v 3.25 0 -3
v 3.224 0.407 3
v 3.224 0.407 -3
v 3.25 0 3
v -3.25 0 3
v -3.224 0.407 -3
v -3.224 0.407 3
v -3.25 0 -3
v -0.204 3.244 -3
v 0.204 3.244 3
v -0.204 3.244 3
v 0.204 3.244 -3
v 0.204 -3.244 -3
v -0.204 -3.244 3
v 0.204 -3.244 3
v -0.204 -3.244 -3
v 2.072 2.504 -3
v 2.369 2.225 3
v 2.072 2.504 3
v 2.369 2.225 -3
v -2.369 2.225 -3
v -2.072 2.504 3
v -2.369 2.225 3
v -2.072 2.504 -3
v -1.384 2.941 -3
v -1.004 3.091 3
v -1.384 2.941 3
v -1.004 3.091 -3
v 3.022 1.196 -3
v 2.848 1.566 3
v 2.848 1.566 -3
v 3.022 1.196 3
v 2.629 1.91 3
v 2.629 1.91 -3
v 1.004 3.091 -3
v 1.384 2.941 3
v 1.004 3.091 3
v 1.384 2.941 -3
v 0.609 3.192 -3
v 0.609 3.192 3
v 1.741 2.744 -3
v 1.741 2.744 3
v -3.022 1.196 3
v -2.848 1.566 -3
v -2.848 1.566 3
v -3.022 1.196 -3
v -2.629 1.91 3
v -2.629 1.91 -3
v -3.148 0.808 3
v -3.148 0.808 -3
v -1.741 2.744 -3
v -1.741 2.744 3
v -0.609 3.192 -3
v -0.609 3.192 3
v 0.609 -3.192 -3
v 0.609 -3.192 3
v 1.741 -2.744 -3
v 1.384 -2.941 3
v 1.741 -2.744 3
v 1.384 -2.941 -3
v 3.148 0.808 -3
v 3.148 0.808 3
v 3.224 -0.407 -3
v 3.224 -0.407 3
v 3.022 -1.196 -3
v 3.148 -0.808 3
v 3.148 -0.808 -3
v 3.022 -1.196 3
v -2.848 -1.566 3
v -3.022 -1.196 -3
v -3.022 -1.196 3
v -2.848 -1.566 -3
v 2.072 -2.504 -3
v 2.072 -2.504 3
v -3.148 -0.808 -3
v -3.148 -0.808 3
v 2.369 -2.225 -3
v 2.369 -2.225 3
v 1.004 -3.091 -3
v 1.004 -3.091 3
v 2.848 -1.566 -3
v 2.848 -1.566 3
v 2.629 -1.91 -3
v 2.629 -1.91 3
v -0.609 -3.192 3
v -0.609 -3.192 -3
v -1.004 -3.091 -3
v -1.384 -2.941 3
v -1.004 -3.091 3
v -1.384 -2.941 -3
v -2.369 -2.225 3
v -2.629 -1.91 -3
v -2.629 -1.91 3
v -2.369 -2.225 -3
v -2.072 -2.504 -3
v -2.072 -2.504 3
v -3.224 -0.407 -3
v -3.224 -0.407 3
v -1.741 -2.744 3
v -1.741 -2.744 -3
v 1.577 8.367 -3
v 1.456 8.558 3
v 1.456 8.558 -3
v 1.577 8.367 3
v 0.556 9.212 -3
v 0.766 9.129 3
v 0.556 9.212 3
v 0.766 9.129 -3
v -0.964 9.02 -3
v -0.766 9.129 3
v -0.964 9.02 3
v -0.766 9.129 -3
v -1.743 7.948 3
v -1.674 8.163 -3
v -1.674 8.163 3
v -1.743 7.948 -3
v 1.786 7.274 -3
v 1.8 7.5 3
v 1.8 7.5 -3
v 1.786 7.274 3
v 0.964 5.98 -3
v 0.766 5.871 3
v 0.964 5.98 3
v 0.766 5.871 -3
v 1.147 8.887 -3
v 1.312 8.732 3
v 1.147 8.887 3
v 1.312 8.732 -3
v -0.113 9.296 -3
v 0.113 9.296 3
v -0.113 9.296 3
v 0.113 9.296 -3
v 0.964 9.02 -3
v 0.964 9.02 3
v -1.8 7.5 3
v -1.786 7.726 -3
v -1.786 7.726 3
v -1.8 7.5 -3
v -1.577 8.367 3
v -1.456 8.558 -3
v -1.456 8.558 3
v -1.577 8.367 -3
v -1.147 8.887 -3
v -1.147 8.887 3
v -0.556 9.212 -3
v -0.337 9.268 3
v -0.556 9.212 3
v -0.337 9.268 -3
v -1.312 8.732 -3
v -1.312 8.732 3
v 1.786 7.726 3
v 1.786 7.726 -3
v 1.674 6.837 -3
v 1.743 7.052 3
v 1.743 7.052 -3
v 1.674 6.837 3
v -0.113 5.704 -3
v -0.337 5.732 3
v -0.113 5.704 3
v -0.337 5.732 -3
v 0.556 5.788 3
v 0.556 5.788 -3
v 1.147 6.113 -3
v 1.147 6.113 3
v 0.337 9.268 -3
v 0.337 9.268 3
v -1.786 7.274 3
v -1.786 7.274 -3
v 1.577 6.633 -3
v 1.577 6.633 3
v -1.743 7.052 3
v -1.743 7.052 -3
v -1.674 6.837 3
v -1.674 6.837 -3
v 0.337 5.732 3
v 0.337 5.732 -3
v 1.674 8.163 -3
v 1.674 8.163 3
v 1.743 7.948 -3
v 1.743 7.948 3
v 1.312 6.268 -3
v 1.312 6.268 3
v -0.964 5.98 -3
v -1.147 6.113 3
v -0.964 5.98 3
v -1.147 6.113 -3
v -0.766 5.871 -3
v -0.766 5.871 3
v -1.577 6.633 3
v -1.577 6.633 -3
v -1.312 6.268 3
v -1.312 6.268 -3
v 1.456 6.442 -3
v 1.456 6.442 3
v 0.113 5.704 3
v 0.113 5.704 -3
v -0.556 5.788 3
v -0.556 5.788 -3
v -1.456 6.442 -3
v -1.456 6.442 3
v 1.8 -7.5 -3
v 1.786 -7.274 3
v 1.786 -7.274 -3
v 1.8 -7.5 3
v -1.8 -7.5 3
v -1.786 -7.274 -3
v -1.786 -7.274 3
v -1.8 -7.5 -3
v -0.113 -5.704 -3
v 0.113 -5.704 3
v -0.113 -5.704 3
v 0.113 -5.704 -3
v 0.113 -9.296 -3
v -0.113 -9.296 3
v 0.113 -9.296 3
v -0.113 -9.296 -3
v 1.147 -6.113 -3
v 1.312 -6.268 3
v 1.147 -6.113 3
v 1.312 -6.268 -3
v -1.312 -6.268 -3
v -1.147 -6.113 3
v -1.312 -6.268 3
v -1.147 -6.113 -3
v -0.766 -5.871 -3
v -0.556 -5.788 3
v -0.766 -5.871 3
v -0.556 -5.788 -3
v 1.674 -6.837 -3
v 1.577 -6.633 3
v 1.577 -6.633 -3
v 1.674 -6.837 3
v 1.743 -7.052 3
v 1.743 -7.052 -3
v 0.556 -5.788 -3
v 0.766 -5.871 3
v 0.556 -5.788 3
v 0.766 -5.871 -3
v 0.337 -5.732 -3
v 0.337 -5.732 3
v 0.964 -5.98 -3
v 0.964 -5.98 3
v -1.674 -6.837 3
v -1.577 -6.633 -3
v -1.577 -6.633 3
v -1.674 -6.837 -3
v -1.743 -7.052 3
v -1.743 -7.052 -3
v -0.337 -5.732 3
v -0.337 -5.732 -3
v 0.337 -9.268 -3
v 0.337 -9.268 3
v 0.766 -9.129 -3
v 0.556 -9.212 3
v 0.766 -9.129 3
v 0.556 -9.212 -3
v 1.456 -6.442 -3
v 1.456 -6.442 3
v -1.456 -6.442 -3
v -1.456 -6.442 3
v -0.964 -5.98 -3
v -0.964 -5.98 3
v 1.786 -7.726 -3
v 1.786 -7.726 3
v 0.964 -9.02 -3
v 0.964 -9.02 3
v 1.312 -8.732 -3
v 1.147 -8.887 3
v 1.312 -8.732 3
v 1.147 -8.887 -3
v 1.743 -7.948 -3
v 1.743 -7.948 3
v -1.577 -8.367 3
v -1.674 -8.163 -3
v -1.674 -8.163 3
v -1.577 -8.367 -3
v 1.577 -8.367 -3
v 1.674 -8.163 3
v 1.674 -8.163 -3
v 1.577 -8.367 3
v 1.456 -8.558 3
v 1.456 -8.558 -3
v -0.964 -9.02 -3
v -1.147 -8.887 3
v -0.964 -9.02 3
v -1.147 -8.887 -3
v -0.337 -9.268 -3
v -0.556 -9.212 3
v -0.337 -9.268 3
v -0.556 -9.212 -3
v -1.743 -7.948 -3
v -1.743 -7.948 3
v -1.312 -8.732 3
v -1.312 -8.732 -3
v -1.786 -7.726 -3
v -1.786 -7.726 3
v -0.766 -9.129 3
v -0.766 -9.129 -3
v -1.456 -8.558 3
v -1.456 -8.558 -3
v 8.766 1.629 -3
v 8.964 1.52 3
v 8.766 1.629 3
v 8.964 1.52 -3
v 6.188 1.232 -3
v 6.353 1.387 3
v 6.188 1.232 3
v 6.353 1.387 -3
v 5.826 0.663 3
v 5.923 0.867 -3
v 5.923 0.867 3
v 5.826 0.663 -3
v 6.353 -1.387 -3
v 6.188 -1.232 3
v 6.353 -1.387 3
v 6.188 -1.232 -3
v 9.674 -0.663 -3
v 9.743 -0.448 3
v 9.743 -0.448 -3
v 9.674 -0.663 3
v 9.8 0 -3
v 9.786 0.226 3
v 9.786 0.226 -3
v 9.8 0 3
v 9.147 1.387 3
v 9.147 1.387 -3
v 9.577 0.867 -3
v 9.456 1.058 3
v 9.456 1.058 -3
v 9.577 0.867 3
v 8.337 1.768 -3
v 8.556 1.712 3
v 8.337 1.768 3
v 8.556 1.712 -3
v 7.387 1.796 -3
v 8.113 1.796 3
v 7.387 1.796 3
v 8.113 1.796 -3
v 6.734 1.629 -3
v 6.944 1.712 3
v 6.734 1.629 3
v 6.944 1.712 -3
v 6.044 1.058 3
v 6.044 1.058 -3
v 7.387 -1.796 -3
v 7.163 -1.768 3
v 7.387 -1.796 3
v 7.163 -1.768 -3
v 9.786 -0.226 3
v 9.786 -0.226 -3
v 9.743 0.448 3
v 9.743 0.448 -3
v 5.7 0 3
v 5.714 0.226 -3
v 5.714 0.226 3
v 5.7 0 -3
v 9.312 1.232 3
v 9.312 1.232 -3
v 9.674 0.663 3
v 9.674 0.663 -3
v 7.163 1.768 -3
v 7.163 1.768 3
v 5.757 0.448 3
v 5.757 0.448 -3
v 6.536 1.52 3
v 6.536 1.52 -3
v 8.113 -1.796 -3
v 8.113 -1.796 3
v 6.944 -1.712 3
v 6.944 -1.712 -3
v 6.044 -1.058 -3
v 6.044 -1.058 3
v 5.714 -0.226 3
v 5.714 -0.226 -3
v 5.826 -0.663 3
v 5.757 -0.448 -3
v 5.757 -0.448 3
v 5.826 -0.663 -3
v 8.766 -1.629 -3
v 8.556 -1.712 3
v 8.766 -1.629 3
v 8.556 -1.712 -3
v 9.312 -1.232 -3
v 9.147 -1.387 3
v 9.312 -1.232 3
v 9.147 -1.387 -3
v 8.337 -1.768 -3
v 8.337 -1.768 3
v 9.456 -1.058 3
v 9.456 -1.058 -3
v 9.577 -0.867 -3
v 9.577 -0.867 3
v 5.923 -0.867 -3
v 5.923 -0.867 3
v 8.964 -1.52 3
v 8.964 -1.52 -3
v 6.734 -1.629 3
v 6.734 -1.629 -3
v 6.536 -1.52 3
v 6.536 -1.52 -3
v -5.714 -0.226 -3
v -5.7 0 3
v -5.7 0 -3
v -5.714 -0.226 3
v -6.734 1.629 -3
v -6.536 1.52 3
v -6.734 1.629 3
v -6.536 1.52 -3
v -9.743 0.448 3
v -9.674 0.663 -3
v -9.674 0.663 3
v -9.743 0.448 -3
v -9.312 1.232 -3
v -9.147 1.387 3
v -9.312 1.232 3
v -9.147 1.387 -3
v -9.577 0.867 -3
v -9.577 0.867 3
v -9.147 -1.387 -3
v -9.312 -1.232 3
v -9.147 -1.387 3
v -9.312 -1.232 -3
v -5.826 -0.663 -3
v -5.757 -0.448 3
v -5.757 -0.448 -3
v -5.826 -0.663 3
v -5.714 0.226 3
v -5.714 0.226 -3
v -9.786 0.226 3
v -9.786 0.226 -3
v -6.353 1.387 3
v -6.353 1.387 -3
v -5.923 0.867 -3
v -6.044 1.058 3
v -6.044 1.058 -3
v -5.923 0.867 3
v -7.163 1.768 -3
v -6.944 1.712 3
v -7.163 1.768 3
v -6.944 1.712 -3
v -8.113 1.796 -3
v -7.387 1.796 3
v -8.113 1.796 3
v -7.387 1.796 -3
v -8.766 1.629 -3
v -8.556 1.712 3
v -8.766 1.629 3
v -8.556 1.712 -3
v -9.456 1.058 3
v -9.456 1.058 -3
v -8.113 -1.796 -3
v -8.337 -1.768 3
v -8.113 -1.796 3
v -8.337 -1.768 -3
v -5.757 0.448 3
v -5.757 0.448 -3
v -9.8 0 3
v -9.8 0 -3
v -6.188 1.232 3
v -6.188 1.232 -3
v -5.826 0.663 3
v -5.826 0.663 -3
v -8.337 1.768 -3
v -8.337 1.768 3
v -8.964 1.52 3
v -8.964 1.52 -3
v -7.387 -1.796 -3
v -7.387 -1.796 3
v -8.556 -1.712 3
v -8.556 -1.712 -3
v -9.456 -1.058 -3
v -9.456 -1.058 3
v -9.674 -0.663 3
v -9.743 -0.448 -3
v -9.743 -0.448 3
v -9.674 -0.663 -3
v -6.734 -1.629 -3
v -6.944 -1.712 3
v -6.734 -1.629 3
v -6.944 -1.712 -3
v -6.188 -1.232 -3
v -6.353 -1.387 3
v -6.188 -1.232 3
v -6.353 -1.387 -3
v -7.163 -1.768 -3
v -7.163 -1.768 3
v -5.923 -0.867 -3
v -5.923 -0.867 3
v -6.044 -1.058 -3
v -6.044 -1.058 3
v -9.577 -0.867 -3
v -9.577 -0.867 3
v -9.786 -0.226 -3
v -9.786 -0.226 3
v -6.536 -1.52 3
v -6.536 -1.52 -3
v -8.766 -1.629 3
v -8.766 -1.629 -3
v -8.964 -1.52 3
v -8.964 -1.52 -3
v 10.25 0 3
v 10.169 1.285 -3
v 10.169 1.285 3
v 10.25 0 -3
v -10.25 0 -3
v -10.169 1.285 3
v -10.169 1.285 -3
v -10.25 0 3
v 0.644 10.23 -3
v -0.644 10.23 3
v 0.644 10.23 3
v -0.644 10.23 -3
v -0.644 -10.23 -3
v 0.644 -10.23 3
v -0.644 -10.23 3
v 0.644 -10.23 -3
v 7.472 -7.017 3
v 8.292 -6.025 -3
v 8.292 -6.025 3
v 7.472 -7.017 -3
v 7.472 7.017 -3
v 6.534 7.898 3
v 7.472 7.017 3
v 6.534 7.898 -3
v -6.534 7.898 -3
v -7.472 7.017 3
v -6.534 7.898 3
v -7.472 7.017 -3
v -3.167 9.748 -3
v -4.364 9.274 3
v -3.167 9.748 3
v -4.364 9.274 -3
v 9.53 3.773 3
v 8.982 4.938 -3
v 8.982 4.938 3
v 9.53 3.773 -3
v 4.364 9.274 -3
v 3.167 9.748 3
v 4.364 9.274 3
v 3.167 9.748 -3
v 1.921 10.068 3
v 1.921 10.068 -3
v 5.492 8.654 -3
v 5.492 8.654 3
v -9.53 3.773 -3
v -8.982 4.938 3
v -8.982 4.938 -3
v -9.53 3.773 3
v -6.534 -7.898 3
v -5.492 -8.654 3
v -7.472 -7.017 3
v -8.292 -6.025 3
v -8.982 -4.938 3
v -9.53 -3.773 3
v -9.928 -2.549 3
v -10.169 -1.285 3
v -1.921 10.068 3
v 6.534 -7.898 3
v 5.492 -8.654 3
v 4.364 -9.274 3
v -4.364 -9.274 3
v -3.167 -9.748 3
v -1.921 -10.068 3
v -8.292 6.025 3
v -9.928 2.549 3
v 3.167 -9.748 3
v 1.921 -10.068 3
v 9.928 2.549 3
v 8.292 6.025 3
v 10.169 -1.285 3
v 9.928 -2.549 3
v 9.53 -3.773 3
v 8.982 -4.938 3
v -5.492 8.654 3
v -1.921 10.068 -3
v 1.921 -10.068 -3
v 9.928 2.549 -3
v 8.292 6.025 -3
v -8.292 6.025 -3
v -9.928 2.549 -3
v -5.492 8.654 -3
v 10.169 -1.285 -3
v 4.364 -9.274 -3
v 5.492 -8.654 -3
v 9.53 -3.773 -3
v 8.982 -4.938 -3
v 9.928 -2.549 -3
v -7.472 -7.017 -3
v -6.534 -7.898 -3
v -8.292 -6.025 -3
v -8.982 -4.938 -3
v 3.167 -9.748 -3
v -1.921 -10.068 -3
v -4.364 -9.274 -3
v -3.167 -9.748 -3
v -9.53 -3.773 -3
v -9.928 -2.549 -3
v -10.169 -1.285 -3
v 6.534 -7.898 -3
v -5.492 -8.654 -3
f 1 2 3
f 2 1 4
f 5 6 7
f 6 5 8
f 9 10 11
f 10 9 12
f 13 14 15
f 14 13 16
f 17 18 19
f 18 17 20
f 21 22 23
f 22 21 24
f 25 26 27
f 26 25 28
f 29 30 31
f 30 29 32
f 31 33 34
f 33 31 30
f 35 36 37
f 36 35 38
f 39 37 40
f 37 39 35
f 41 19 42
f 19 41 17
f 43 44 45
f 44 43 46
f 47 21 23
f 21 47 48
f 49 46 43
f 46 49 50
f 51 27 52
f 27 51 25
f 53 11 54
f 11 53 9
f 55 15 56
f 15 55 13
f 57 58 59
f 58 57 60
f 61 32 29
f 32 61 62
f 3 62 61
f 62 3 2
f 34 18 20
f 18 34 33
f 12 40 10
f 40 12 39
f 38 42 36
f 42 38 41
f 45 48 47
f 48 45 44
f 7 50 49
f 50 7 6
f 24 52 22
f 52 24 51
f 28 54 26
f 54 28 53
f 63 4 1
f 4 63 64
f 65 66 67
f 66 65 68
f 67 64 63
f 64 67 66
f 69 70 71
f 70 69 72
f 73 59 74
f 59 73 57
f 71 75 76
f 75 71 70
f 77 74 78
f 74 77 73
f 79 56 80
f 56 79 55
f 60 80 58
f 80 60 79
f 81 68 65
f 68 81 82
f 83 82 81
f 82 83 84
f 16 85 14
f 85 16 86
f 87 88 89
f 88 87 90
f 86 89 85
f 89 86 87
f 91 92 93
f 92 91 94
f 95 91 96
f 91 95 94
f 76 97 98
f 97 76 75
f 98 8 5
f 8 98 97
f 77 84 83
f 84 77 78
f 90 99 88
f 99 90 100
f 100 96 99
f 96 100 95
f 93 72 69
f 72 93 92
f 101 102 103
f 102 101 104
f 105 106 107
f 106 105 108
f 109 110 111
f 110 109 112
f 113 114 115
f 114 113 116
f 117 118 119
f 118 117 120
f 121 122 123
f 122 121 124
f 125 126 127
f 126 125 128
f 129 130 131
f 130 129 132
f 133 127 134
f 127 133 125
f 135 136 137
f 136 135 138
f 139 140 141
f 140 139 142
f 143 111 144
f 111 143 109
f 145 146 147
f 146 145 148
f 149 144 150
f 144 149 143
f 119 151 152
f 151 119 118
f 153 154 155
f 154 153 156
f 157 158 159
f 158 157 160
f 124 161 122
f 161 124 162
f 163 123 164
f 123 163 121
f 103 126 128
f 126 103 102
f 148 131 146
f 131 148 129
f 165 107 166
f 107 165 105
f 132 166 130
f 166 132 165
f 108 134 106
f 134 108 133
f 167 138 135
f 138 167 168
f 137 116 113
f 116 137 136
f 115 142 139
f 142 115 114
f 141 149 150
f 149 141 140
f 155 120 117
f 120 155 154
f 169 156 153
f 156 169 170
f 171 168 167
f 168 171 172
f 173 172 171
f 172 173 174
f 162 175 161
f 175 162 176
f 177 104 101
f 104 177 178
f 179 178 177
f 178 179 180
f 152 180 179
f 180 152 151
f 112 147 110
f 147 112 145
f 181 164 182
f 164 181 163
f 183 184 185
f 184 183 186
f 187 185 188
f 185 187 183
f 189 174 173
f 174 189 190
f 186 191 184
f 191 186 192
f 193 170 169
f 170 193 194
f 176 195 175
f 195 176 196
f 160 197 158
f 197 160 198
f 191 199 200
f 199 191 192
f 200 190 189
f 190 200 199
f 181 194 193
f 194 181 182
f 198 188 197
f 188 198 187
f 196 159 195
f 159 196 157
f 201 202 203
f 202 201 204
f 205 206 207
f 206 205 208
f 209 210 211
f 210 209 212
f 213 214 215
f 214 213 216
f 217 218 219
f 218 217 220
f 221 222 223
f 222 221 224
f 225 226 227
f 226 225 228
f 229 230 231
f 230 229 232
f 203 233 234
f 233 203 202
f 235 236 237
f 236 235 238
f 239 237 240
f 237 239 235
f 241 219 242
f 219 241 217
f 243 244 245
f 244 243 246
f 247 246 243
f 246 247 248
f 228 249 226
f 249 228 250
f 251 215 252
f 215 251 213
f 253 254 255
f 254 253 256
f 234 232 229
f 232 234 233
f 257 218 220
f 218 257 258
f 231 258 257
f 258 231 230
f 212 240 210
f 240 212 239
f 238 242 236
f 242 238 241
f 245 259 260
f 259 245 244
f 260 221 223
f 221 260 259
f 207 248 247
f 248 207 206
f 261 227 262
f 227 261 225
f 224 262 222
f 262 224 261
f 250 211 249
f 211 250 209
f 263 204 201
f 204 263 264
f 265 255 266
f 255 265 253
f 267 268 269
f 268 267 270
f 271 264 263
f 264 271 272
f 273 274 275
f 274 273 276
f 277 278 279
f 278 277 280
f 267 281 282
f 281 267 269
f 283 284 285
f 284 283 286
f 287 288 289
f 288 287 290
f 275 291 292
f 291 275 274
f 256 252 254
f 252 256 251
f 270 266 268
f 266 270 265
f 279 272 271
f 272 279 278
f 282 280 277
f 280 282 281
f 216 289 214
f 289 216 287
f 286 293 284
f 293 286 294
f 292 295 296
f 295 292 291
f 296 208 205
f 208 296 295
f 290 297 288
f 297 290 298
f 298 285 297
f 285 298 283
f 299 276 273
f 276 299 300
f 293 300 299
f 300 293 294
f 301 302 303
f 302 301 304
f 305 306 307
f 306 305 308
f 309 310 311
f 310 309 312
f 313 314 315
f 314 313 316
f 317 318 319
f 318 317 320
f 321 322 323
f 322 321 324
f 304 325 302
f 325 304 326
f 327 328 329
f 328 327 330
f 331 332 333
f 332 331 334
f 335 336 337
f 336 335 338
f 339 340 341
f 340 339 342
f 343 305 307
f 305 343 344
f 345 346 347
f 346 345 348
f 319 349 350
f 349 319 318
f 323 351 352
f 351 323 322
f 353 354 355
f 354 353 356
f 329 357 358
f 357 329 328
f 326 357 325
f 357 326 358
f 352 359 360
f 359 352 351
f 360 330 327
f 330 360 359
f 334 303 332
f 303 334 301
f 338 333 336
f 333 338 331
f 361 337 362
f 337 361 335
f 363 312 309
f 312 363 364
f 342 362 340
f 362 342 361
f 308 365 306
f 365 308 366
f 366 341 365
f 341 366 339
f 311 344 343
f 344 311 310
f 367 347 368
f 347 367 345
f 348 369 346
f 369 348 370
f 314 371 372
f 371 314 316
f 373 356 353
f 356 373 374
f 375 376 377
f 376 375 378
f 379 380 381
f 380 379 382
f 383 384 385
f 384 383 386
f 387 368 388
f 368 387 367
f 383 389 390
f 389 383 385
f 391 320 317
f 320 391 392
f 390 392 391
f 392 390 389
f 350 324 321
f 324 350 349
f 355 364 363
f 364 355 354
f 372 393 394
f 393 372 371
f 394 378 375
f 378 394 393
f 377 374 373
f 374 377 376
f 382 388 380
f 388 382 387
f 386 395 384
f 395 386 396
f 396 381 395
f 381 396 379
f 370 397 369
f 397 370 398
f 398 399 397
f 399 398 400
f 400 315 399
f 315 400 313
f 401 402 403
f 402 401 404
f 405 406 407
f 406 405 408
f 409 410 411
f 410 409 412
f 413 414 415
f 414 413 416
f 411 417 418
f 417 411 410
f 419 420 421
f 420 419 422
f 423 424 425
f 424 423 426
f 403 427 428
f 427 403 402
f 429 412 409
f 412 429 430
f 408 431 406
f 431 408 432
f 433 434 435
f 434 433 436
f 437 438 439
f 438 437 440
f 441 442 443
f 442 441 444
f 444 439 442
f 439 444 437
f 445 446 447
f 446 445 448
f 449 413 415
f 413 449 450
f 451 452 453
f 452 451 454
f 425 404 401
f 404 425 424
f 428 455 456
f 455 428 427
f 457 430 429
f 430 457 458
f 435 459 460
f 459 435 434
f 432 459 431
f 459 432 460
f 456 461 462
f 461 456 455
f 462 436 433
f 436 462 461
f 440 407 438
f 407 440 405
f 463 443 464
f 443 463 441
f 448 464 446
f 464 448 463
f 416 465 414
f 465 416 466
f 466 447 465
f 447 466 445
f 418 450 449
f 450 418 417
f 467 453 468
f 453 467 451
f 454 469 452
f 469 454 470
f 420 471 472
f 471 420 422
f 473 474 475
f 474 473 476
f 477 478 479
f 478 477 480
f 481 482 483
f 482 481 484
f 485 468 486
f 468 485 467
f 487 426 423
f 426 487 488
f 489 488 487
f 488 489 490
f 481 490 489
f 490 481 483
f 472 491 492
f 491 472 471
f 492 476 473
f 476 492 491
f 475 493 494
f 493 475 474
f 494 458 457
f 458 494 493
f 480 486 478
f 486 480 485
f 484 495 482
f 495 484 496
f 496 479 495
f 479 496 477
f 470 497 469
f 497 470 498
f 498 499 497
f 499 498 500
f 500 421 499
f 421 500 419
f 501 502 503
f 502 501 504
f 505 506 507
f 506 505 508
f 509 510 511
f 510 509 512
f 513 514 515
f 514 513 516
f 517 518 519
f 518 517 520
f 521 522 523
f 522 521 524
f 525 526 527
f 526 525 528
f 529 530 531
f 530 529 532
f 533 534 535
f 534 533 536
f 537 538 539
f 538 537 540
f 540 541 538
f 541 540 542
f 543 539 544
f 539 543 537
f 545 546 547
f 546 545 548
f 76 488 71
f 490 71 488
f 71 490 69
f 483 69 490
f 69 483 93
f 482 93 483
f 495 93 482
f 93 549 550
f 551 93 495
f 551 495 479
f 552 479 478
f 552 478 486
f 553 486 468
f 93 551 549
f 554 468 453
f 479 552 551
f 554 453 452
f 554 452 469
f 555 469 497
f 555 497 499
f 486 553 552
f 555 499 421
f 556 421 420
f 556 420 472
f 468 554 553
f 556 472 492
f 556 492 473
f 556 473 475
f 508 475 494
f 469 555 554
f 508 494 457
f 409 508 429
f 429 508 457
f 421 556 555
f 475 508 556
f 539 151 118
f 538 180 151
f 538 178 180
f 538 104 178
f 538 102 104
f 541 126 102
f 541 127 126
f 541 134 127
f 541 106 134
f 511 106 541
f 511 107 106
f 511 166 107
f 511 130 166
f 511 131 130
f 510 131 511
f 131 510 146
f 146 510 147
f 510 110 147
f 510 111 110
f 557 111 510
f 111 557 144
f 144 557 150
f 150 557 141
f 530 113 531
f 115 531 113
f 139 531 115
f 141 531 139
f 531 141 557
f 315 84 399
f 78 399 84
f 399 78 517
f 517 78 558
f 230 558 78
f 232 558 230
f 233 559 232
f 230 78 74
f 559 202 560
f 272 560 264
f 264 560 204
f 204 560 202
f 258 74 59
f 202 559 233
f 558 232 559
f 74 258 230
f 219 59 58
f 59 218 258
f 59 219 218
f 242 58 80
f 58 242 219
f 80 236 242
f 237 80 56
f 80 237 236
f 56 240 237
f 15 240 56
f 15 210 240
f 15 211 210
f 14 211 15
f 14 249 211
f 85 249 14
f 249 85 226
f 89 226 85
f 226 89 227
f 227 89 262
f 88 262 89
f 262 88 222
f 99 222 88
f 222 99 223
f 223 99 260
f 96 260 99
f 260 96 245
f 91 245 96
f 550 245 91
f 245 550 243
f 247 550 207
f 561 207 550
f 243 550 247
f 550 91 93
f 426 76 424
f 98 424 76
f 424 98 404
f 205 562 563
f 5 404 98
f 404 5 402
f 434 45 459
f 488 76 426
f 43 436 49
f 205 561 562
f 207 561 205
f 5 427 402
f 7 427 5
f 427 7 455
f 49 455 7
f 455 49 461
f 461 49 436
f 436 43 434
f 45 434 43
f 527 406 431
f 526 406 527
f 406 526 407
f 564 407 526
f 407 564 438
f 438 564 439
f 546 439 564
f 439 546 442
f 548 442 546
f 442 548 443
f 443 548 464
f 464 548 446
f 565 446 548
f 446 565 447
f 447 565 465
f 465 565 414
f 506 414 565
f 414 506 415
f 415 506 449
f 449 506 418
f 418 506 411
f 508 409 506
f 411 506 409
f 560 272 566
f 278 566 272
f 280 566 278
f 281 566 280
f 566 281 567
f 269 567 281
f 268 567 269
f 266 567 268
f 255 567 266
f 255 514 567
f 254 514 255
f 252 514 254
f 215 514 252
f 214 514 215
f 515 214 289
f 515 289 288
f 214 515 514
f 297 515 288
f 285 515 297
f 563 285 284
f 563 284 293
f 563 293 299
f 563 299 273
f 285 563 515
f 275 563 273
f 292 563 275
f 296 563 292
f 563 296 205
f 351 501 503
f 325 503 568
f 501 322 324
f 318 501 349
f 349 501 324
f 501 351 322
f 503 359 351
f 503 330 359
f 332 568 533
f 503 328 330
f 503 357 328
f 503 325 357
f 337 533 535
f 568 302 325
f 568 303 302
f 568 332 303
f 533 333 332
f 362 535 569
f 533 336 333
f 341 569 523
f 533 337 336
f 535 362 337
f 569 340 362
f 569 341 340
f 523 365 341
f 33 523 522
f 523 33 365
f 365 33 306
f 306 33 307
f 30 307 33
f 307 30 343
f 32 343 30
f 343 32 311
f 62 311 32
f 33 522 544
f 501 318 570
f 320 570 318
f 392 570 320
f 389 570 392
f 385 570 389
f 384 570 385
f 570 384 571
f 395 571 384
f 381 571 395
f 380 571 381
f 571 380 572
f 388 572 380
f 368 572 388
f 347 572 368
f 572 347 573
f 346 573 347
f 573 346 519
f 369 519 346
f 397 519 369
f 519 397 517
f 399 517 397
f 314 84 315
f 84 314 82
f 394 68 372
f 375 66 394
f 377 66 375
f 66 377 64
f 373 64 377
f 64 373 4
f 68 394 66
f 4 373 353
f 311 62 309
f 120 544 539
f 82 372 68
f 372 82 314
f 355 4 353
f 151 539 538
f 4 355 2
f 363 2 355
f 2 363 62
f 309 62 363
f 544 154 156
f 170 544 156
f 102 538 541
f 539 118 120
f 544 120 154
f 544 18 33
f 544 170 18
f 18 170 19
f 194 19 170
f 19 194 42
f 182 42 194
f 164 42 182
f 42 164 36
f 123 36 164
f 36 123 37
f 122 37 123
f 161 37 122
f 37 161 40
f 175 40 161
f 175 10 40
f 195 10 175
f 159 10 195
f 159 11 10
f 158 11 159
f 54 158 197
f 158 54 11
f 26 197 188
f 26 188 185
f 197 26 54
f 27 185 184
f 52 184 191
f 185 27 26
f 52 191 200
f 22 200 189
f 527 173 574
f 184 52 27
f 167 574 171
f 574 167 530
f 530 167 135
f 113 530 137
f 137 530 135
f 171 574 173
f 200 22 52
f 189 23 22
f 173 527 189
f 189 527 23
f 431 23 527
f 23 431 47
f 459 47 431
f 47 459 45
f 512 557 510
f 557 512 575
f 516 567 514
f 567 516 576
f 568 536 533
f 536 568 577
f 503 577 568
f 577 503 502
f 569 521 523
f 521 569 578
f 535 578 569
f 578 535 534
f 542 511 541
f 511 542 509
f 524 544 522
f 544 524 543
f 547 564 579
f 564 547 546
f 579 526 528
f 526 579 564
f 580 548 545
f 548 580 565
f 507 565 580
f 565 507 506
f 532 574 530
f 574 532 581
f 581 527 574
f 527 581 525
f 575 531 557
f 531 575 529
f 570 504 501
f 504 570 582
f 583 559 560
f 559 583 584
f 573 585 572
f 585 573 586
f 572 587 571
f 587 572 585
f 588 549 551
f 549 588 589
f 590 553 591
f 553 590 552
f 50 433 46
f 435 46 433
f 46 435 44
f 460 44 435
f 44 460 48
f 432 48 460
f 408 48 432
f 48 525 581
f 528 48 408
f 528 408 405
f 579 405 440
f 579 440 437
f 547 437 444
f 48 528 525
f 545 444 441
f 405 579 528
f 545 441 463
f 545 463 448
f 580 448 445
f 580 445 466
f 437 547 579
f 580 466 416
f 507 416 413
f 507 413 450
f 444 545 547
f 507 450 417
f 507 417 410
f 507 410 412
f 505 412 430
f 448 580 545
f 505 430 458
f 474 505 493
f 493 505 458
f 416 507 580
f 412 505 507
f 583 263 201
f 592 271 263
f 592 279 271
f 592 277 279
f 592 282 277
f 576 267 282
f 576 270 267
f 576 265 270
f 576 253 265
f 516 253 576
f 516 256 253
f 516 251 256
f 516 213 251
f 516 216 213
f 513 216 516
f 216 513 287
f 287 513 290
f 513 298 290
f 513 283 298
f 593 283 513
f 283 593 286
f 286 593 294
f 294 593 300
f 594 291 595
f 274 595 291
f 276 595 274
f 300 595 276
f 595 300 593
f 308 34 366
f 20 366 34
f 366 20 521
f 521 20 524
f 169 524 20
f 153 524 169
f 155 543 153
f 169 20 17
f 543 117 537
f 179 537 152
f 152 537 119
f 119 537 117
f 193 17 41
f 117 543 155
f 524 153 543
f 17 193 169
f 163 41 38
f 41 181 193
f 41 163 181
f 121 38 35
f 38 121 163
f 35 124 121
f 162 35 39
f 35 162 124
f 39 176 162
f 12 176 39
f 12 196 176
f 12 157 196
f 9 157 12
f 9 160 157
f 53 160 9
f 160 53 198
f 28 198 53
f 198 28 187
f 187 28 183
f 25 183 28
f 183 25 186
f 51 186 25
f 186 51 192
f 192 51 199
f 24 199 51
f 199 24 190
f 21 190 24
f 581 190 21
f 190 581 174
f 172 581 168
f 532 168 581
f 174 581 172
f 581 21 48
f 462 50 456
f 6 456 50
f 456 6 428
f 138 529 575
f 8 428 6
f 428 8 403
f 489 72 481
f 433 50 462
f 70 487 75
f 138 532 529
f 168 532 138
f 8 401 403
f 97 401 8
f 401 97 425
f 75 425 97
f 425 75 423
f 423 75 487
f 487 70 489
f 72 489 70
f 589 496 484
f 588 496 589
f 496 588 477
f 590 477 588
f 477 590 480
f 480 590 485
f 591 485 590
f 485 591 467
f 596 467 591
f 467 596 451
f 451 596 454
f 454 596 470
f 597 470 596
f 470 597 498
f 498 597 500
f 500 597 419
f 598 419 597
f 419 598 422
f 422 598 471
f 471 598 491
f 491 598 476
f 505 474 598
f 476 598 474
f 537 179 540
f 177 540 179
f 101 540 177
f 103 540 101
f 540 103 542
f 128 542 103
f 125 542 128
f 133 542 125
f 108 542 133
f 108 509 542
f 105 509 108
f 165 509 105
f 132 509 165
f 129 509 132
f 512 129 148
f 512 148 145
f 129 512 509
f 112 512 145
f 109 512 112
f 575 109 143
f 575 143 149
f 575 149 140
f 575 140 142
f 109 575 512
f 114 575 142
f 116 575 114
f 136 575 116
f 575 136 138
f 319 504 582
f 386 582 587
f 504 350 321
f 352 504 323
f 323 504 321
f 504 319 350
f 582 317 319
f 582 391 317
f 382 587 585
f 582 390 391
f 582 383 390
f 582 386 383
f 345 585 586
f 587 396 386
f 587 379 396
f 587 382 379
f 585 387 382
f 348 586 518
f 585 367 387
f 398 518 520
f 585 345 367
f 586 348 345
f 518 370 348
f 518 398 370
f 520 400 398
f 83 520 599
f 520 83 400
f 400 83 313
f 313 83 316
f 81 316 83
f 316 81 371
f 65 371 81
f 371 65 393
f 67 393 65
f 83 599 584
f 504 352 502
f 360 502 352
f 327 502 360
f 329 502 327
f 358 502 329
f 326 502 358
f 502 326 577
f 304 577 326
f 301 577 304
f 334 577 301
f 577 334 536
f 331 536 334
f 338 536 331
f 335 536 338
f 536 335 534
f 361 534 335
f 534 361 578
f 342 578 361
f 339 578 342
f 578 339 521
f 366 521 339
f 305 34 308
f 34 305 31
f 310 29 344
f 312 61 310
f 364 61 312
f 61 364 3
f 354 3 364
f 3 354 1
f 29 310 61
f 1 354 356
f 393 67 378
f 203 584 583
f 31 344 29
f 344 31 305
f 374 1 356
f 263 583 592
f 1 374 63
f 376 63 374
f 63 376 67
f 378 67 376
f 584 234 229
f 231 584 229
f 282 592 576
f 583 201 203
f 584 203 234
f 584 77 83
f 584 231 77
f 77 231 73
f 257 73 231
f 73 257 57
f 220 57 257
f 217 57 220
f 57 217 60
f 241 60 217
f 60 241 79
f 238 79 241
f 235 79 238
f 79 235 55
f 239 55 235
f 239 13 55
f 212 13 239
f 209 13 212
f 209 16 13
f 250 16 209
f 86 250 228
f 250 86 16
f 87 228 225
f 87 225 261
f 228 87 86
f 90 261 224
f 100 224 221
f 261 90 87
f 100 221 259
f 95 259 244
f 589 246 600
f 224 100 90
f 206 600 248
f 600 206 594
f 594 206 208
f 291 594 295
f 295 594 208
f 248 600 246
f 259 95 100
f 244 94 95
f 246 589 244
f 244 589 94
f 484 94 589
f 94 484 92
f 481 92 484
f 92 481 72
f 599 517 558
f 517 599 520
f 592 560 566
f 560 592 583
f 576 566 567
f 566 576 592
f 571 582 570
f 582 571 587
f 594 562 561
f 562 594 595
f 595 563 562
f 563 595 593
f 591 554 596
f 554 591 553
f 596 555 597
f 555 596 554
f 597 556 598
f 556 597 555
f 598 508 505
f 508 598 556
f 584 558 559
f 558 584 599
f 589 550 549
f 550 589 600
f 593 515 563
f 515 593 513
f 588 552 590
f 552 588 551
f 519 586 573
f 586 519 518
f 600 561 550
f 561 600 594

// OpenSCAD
$fn = 50;


difference() {
	union() {
		translate(v = [0, 0, -3.0000000000]) {
			rotate(a = [0, 0, 0]) {
				cylinder(h = 6, r = 10.2500000000);
			}
		}
	}
	union() {
		translate(v = [0, 0, -125.0000000000]) {
			rotate(a = [0, 0, 0]) {
				cylinder(h = 250, r = 3.2500000000);
			}
		}
		translate(v = [0, 7.5000000000, -125.0000000000]) {
			rotate(a = [0, 0, 0]) {
				cylinder(h = 250, r = 1.8000000000);
			}
		}
		translate(v = [0, -7.5000000000, -125.0000000000]) {
			rotate(a = [0, 0, 0]) {
				cylinder(h = 250, r = 1.8000000000);
			}
		}
		translate(v = [7.7500000000, 0, -125.0000000000]) {
			rotate(a = [0, 0, 0]) {
				hull() {
					translate(v = [0.2500000000, 0, 0]) {
						rotate(a = [0, 0, 0]) {
							translate(v = [0, 0, 0]) {
								rotate(a = [0, 0, 0]) {
									cylinder(h = 250, r = 1.8000000000);
								}
							}
						}
					}
					translate(v = [-0.2500000000, 0, 0]) {
						rotate(a = [0, 0, 0]) {
							translate(v = [0, 0, 0]) {
								rotate(a = [0, 0, 0]) {
									cylinder(h = 250, r = 1.8000000000);
								}
							}
						}
					}
				}
			}
		}
		translate(v = [-7.7500000000, 0, -125.0000000000]) {
			rotate(a = [0, 0, 0]) {
				hull() {
					translate(v = [0.2500000000, 0, 0]) {
						rotate(a = [0, 0, 0]) {
							translate(v = [0, 0, 0]) {
								rotate(a = [0, 0, 0]) {
									cylinder(h = 250, r = 1.8000000000);
								}
							}
						}
					}
					translate(v = [-0.2500000000, 0, 0]) {
						rotate(a = [0, 0, 0]) {
							translate(v = [0, 0, 0]) {
								rotate(a = [0, 0, 0]) {
									cylinder(h = 250, r = 1.8000000000);
								}
							}
						}
					}
				}
			}
		}
	}
}
